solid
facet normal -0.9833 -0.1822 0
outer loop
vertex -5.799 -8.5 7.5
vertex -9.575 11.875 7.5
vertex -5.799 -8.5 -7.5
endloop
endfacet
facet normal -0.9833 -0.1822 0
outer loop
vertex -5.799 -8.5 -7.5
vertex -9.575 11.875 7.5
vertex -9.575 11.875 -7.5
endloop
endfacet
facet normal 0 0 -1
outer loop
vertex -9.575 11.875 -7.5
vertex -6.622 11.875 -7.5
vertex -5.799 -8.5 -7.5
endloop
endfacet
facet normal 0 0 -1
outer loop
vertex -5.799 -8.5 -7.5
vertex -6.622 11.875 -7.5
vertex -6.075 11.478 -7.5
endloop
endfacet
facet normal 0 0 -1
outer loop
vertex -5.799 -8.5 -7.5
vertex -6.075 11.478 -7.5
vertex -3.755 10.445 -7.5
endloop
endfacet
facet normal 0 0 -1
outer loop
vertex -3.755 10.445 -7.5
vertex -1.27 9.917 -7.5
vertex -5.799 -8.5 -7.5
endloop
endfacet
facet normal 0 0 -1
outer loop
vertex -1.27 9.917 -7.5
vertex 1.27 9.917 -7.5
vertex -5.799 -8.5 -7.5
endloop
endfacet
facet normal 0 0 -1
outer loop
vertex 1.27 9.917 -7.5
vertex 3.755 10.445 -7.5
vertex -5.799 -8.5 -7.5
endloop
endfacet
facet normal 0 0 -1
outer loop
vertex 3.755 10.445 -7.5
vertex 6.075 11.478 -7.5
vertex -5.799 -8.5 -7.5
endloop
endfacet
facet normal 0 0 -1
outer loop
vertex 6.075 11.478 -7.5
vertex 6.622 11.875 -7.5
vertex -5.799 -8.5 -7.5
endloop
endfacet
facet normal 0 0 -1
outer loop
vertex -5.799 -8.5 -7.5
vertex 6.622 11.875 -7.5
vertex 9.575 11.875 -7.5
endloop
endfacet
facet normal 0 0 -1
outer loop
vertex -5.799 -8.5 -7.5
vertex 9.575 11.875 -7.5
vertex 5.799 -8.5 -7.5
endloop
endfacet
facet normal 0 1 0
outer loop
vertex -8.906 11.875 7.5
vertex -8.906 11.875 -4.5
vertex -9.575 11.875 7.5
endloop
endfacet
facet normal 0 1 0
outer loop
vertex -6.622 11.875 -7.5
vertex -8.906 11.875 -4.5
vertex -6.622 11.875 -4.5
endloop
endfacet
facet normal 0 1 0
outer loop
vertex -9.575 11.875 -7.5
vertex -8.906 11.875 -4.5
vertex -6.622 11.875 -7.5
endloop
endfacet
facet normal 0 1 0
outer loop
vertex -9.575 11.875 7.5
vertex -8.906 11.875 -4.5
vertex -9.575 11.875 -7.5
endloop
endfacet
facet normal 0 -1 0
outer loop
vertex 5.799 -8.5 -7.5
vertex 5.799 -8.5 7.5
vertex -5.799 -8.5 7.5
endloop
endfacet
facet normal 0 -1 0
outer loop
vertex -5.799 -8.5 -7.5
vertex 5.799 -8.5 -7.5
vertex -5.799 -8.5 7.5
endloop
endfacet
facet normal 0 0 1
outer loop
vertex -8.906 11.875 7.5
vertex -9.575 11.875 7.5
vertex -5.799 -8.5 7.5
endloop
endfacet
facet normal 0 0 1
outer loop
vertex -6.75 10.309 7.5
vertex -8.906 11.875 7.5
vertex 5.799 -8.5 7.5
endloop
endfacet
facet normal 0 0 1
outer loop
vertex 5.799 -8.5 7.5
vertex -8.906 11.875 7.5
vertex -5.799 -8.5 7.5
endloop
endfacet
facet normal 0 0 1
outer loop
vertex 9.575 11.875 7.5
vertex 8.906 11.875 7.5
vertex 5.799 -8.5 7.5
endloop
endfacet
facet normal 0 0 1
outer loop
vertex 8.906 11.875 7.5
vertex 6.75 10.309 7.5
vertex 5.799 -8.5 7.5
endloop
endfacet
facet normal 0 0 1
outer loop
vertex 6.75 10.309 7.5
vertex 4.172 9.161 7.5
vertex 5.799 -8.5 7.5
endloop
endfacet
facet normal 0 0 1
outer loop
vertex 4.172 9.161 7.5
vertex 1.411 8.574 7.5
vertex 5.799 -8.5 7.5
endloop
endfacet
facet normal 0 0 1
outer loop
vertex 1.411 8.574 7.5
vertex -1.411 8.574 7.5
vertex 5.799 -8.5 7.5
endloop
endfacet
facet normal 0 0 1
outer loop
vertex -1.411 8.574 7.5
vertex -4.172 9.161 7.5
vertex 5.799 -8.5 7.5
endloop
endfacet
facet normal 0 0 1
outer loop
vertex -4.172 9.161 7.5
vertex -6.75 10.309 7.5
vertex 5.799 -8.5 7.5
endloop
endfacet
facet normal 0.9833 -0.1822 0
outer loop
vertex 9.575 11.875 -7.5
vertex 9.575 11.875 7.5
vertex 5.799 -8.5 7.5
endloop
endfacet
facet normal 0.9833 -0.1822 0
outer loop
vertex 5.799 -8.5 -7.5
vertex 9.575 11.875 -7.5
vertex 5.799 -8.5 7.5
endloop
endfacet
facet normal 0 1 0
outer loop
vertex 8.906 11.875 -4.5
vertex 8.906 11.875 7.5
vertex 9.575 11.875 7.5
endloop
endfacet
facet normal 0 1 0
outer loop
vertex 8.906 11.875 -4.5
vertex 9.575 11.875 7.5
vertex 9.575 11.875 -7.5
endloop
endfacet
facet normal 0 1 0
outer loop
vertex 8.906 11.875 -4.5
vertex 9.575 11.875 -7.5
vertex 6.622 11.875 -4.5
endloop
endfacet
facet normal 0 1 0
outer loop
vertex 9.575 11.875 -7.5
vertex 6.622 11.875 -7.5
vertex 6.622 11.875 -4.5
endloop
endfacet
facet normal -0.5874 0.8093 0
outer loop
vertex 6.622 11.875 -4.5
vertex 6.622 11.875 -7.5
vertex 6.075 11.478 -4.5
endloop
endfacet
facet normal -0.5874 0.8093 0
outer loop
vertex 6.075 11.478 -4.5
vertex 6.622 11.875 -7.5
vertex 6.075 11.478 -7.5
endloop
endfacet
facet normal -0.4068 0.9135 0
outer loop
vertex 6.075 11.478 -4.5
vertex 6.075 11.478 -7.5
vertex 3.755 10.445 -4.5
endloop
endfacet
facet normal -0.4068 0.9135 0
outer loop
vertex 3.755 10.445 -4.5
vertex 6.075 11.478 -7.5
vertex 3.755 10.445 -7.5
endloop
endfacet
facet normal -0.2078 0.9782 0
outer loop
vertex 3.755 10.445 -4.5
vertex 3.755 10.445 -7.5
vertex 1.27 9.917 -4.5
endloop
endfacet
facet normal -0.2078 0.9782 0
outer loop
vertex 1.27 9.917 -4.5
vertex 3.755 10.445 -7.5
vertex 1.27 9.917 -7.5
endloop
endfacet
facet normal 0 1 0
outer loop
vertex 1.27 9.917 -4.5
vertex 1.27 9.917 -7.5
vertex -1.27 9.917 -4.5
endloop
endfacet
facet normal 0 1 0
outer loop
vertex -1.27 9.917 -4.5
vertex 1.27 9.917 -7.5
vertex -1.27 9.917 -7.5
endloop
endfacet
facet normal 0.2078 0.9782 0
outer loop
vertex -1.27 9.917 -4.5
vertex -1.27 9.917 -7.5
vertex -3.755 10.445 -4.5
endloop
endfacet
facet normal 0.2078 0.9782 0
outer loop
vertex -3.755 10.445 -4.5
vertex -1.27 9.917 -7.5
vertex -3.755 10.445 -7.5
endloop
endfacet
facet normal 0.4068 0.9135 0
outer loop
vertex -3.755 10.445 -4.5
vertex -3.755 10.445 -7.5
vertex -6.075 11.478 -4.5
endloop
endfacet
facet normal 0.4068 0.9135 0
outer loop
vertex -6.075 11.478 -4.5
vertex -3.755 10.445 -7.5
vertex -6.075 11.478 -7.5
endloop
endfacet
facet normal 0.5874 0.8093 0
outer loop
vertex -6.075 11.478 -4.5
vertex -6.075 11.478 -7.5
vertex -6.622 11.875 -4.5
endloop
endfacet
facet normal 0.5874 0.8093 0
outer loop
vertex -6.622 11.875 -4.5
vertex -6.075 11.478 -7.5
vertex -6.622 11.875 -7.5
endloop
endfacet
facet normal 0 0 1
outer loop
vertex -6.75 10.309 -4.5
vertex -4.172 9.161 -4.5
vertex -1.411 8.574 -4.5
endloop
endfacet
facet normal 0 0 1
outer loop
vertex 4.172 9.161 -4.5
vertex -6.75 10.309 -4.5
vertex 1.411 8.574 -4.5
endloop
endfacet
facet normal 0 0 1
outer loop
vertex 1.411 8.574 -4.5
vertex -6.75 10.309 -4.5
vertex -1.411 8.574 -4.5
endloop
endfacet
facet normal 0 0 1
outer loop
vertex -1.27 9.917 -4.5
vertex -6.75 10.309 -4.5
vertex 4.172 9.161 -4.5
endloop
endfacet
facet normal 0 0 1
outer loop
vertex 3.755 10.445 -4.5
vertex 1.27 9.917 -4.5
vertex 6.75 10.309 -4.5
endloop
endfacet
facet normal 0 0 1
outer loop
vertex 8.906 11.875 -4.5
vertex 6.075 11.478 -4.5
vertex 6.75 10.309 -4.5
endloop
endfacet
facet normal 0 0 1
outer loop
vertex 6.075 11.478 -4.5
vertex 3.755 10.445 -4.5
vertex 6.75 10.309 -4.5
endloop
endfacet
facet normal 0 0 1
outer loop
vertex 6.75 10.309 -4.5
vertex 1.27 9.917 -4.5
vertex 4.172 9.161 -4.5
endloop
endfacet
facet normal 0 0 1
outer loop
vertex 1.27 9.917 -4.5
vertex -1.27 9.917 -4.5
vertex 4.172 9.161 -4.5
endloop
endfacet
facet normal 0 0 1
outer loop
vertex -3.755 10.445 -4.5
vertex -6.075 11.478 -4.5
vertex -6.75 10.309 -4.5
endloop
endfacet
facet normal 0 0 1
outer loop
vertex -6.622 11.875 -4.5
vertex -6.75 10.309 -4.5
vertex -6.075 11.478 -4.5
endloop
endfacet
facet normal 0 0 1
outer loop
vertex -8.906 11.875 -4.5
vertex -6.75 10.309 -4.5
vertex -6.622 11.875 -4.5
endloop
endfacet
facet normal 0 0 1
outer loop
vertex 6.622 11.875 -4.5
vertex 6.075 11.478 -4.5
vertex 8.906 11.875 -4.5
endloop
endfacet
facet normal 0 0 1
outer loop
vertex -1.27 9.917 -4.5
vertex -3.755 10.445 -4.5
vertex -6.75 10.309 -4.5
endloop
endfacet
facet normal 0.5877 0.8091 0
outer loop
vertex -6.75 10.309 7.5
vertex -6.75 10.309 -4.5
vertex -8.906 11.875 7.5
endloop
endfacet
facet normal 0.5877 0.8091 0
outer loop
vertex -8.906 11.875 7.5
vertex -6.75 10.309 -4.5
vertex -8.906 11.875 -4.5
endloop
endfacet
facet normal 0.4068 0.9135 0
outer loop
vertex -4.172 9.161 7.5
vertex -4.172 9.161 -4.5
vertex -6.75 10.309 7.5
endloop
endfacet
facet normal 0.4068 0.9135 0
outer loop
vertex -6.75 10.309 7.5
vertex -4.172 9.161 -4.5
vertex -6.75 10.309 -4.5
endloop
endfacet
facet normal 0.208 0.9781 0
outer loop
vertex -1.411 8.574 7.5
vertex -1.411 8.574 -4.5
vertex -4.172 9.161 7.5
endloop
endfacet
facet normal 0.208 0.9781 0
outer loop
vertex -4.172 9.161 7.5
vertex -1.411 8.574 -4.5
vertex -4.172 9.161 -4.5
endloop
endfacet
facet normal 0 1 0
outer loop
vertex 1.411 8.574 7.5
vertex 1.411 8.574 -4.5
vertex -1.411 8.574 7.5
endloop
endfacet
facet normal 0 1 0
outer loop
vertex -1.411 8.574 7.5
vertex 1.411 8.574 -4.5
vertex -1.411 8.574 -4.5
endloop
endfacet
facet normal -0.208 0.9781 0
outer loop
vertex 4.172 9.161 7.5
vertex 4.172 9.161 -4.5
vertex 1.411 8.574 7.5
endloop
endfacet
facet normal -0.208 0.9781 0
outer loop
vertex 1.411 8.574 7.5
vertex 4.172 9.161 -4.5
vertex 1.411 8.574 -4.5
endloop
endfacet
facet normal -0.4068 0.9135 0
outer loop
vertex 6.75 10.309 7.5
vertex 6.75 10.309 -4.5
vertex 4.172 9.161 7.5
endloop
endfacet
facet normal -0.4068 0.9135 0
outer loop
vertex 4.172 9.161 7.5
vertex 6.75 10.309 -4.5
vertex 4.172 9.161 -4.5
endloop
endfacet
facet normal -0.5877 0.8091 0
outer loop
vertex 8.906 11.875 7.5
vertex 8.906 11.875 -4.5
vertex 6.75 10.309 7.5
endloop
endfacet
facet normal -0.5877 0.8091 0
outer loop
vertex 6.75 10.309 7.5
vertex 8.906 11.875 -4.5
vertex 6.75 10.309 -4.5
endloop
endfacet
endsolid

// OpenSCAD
DST=17;
CLR=50;
H=15;
DIA=27;
RIM=3;

FLANKOFS=7.8;
FLANKROT=10.5;

module extern() {
    translate([0, -(DST+CLR)/2, 0]) cube(size=[12, CLR, CLR], center=true);
    translate([0, (DST+DIA)/2, 0]) {
        translate([0, 0, RIM]) cylinder(r=DIA/2, h=H, center=true);
        translate([0, 0, -RIM]) cylinder(r=(DIA-(DIA/10))/2, h=H, center=true);
    }
    
    translate([-(FLANKOFS+CLR/2), 0, 0]) rotate([0, 0, FLANKROT]) cube(size=[CLR, CLR, CLR], center=true);
    translate([FLANKOFS+CLR/2, 0, 0]) rotate([0, 0, -FLANKROT]) cube(size=[CLR, CLR, CLR], center=true);
    translate([0, (DST+CLR)/2+DIA/8, 0]) cube(size=[CLR, CLR, CLR], center=true);
}

module spacer() {
    cube(size=[20, DST+DIA/2, H], center=true);
}

difference() {
    spacer();
    extern();    
}
